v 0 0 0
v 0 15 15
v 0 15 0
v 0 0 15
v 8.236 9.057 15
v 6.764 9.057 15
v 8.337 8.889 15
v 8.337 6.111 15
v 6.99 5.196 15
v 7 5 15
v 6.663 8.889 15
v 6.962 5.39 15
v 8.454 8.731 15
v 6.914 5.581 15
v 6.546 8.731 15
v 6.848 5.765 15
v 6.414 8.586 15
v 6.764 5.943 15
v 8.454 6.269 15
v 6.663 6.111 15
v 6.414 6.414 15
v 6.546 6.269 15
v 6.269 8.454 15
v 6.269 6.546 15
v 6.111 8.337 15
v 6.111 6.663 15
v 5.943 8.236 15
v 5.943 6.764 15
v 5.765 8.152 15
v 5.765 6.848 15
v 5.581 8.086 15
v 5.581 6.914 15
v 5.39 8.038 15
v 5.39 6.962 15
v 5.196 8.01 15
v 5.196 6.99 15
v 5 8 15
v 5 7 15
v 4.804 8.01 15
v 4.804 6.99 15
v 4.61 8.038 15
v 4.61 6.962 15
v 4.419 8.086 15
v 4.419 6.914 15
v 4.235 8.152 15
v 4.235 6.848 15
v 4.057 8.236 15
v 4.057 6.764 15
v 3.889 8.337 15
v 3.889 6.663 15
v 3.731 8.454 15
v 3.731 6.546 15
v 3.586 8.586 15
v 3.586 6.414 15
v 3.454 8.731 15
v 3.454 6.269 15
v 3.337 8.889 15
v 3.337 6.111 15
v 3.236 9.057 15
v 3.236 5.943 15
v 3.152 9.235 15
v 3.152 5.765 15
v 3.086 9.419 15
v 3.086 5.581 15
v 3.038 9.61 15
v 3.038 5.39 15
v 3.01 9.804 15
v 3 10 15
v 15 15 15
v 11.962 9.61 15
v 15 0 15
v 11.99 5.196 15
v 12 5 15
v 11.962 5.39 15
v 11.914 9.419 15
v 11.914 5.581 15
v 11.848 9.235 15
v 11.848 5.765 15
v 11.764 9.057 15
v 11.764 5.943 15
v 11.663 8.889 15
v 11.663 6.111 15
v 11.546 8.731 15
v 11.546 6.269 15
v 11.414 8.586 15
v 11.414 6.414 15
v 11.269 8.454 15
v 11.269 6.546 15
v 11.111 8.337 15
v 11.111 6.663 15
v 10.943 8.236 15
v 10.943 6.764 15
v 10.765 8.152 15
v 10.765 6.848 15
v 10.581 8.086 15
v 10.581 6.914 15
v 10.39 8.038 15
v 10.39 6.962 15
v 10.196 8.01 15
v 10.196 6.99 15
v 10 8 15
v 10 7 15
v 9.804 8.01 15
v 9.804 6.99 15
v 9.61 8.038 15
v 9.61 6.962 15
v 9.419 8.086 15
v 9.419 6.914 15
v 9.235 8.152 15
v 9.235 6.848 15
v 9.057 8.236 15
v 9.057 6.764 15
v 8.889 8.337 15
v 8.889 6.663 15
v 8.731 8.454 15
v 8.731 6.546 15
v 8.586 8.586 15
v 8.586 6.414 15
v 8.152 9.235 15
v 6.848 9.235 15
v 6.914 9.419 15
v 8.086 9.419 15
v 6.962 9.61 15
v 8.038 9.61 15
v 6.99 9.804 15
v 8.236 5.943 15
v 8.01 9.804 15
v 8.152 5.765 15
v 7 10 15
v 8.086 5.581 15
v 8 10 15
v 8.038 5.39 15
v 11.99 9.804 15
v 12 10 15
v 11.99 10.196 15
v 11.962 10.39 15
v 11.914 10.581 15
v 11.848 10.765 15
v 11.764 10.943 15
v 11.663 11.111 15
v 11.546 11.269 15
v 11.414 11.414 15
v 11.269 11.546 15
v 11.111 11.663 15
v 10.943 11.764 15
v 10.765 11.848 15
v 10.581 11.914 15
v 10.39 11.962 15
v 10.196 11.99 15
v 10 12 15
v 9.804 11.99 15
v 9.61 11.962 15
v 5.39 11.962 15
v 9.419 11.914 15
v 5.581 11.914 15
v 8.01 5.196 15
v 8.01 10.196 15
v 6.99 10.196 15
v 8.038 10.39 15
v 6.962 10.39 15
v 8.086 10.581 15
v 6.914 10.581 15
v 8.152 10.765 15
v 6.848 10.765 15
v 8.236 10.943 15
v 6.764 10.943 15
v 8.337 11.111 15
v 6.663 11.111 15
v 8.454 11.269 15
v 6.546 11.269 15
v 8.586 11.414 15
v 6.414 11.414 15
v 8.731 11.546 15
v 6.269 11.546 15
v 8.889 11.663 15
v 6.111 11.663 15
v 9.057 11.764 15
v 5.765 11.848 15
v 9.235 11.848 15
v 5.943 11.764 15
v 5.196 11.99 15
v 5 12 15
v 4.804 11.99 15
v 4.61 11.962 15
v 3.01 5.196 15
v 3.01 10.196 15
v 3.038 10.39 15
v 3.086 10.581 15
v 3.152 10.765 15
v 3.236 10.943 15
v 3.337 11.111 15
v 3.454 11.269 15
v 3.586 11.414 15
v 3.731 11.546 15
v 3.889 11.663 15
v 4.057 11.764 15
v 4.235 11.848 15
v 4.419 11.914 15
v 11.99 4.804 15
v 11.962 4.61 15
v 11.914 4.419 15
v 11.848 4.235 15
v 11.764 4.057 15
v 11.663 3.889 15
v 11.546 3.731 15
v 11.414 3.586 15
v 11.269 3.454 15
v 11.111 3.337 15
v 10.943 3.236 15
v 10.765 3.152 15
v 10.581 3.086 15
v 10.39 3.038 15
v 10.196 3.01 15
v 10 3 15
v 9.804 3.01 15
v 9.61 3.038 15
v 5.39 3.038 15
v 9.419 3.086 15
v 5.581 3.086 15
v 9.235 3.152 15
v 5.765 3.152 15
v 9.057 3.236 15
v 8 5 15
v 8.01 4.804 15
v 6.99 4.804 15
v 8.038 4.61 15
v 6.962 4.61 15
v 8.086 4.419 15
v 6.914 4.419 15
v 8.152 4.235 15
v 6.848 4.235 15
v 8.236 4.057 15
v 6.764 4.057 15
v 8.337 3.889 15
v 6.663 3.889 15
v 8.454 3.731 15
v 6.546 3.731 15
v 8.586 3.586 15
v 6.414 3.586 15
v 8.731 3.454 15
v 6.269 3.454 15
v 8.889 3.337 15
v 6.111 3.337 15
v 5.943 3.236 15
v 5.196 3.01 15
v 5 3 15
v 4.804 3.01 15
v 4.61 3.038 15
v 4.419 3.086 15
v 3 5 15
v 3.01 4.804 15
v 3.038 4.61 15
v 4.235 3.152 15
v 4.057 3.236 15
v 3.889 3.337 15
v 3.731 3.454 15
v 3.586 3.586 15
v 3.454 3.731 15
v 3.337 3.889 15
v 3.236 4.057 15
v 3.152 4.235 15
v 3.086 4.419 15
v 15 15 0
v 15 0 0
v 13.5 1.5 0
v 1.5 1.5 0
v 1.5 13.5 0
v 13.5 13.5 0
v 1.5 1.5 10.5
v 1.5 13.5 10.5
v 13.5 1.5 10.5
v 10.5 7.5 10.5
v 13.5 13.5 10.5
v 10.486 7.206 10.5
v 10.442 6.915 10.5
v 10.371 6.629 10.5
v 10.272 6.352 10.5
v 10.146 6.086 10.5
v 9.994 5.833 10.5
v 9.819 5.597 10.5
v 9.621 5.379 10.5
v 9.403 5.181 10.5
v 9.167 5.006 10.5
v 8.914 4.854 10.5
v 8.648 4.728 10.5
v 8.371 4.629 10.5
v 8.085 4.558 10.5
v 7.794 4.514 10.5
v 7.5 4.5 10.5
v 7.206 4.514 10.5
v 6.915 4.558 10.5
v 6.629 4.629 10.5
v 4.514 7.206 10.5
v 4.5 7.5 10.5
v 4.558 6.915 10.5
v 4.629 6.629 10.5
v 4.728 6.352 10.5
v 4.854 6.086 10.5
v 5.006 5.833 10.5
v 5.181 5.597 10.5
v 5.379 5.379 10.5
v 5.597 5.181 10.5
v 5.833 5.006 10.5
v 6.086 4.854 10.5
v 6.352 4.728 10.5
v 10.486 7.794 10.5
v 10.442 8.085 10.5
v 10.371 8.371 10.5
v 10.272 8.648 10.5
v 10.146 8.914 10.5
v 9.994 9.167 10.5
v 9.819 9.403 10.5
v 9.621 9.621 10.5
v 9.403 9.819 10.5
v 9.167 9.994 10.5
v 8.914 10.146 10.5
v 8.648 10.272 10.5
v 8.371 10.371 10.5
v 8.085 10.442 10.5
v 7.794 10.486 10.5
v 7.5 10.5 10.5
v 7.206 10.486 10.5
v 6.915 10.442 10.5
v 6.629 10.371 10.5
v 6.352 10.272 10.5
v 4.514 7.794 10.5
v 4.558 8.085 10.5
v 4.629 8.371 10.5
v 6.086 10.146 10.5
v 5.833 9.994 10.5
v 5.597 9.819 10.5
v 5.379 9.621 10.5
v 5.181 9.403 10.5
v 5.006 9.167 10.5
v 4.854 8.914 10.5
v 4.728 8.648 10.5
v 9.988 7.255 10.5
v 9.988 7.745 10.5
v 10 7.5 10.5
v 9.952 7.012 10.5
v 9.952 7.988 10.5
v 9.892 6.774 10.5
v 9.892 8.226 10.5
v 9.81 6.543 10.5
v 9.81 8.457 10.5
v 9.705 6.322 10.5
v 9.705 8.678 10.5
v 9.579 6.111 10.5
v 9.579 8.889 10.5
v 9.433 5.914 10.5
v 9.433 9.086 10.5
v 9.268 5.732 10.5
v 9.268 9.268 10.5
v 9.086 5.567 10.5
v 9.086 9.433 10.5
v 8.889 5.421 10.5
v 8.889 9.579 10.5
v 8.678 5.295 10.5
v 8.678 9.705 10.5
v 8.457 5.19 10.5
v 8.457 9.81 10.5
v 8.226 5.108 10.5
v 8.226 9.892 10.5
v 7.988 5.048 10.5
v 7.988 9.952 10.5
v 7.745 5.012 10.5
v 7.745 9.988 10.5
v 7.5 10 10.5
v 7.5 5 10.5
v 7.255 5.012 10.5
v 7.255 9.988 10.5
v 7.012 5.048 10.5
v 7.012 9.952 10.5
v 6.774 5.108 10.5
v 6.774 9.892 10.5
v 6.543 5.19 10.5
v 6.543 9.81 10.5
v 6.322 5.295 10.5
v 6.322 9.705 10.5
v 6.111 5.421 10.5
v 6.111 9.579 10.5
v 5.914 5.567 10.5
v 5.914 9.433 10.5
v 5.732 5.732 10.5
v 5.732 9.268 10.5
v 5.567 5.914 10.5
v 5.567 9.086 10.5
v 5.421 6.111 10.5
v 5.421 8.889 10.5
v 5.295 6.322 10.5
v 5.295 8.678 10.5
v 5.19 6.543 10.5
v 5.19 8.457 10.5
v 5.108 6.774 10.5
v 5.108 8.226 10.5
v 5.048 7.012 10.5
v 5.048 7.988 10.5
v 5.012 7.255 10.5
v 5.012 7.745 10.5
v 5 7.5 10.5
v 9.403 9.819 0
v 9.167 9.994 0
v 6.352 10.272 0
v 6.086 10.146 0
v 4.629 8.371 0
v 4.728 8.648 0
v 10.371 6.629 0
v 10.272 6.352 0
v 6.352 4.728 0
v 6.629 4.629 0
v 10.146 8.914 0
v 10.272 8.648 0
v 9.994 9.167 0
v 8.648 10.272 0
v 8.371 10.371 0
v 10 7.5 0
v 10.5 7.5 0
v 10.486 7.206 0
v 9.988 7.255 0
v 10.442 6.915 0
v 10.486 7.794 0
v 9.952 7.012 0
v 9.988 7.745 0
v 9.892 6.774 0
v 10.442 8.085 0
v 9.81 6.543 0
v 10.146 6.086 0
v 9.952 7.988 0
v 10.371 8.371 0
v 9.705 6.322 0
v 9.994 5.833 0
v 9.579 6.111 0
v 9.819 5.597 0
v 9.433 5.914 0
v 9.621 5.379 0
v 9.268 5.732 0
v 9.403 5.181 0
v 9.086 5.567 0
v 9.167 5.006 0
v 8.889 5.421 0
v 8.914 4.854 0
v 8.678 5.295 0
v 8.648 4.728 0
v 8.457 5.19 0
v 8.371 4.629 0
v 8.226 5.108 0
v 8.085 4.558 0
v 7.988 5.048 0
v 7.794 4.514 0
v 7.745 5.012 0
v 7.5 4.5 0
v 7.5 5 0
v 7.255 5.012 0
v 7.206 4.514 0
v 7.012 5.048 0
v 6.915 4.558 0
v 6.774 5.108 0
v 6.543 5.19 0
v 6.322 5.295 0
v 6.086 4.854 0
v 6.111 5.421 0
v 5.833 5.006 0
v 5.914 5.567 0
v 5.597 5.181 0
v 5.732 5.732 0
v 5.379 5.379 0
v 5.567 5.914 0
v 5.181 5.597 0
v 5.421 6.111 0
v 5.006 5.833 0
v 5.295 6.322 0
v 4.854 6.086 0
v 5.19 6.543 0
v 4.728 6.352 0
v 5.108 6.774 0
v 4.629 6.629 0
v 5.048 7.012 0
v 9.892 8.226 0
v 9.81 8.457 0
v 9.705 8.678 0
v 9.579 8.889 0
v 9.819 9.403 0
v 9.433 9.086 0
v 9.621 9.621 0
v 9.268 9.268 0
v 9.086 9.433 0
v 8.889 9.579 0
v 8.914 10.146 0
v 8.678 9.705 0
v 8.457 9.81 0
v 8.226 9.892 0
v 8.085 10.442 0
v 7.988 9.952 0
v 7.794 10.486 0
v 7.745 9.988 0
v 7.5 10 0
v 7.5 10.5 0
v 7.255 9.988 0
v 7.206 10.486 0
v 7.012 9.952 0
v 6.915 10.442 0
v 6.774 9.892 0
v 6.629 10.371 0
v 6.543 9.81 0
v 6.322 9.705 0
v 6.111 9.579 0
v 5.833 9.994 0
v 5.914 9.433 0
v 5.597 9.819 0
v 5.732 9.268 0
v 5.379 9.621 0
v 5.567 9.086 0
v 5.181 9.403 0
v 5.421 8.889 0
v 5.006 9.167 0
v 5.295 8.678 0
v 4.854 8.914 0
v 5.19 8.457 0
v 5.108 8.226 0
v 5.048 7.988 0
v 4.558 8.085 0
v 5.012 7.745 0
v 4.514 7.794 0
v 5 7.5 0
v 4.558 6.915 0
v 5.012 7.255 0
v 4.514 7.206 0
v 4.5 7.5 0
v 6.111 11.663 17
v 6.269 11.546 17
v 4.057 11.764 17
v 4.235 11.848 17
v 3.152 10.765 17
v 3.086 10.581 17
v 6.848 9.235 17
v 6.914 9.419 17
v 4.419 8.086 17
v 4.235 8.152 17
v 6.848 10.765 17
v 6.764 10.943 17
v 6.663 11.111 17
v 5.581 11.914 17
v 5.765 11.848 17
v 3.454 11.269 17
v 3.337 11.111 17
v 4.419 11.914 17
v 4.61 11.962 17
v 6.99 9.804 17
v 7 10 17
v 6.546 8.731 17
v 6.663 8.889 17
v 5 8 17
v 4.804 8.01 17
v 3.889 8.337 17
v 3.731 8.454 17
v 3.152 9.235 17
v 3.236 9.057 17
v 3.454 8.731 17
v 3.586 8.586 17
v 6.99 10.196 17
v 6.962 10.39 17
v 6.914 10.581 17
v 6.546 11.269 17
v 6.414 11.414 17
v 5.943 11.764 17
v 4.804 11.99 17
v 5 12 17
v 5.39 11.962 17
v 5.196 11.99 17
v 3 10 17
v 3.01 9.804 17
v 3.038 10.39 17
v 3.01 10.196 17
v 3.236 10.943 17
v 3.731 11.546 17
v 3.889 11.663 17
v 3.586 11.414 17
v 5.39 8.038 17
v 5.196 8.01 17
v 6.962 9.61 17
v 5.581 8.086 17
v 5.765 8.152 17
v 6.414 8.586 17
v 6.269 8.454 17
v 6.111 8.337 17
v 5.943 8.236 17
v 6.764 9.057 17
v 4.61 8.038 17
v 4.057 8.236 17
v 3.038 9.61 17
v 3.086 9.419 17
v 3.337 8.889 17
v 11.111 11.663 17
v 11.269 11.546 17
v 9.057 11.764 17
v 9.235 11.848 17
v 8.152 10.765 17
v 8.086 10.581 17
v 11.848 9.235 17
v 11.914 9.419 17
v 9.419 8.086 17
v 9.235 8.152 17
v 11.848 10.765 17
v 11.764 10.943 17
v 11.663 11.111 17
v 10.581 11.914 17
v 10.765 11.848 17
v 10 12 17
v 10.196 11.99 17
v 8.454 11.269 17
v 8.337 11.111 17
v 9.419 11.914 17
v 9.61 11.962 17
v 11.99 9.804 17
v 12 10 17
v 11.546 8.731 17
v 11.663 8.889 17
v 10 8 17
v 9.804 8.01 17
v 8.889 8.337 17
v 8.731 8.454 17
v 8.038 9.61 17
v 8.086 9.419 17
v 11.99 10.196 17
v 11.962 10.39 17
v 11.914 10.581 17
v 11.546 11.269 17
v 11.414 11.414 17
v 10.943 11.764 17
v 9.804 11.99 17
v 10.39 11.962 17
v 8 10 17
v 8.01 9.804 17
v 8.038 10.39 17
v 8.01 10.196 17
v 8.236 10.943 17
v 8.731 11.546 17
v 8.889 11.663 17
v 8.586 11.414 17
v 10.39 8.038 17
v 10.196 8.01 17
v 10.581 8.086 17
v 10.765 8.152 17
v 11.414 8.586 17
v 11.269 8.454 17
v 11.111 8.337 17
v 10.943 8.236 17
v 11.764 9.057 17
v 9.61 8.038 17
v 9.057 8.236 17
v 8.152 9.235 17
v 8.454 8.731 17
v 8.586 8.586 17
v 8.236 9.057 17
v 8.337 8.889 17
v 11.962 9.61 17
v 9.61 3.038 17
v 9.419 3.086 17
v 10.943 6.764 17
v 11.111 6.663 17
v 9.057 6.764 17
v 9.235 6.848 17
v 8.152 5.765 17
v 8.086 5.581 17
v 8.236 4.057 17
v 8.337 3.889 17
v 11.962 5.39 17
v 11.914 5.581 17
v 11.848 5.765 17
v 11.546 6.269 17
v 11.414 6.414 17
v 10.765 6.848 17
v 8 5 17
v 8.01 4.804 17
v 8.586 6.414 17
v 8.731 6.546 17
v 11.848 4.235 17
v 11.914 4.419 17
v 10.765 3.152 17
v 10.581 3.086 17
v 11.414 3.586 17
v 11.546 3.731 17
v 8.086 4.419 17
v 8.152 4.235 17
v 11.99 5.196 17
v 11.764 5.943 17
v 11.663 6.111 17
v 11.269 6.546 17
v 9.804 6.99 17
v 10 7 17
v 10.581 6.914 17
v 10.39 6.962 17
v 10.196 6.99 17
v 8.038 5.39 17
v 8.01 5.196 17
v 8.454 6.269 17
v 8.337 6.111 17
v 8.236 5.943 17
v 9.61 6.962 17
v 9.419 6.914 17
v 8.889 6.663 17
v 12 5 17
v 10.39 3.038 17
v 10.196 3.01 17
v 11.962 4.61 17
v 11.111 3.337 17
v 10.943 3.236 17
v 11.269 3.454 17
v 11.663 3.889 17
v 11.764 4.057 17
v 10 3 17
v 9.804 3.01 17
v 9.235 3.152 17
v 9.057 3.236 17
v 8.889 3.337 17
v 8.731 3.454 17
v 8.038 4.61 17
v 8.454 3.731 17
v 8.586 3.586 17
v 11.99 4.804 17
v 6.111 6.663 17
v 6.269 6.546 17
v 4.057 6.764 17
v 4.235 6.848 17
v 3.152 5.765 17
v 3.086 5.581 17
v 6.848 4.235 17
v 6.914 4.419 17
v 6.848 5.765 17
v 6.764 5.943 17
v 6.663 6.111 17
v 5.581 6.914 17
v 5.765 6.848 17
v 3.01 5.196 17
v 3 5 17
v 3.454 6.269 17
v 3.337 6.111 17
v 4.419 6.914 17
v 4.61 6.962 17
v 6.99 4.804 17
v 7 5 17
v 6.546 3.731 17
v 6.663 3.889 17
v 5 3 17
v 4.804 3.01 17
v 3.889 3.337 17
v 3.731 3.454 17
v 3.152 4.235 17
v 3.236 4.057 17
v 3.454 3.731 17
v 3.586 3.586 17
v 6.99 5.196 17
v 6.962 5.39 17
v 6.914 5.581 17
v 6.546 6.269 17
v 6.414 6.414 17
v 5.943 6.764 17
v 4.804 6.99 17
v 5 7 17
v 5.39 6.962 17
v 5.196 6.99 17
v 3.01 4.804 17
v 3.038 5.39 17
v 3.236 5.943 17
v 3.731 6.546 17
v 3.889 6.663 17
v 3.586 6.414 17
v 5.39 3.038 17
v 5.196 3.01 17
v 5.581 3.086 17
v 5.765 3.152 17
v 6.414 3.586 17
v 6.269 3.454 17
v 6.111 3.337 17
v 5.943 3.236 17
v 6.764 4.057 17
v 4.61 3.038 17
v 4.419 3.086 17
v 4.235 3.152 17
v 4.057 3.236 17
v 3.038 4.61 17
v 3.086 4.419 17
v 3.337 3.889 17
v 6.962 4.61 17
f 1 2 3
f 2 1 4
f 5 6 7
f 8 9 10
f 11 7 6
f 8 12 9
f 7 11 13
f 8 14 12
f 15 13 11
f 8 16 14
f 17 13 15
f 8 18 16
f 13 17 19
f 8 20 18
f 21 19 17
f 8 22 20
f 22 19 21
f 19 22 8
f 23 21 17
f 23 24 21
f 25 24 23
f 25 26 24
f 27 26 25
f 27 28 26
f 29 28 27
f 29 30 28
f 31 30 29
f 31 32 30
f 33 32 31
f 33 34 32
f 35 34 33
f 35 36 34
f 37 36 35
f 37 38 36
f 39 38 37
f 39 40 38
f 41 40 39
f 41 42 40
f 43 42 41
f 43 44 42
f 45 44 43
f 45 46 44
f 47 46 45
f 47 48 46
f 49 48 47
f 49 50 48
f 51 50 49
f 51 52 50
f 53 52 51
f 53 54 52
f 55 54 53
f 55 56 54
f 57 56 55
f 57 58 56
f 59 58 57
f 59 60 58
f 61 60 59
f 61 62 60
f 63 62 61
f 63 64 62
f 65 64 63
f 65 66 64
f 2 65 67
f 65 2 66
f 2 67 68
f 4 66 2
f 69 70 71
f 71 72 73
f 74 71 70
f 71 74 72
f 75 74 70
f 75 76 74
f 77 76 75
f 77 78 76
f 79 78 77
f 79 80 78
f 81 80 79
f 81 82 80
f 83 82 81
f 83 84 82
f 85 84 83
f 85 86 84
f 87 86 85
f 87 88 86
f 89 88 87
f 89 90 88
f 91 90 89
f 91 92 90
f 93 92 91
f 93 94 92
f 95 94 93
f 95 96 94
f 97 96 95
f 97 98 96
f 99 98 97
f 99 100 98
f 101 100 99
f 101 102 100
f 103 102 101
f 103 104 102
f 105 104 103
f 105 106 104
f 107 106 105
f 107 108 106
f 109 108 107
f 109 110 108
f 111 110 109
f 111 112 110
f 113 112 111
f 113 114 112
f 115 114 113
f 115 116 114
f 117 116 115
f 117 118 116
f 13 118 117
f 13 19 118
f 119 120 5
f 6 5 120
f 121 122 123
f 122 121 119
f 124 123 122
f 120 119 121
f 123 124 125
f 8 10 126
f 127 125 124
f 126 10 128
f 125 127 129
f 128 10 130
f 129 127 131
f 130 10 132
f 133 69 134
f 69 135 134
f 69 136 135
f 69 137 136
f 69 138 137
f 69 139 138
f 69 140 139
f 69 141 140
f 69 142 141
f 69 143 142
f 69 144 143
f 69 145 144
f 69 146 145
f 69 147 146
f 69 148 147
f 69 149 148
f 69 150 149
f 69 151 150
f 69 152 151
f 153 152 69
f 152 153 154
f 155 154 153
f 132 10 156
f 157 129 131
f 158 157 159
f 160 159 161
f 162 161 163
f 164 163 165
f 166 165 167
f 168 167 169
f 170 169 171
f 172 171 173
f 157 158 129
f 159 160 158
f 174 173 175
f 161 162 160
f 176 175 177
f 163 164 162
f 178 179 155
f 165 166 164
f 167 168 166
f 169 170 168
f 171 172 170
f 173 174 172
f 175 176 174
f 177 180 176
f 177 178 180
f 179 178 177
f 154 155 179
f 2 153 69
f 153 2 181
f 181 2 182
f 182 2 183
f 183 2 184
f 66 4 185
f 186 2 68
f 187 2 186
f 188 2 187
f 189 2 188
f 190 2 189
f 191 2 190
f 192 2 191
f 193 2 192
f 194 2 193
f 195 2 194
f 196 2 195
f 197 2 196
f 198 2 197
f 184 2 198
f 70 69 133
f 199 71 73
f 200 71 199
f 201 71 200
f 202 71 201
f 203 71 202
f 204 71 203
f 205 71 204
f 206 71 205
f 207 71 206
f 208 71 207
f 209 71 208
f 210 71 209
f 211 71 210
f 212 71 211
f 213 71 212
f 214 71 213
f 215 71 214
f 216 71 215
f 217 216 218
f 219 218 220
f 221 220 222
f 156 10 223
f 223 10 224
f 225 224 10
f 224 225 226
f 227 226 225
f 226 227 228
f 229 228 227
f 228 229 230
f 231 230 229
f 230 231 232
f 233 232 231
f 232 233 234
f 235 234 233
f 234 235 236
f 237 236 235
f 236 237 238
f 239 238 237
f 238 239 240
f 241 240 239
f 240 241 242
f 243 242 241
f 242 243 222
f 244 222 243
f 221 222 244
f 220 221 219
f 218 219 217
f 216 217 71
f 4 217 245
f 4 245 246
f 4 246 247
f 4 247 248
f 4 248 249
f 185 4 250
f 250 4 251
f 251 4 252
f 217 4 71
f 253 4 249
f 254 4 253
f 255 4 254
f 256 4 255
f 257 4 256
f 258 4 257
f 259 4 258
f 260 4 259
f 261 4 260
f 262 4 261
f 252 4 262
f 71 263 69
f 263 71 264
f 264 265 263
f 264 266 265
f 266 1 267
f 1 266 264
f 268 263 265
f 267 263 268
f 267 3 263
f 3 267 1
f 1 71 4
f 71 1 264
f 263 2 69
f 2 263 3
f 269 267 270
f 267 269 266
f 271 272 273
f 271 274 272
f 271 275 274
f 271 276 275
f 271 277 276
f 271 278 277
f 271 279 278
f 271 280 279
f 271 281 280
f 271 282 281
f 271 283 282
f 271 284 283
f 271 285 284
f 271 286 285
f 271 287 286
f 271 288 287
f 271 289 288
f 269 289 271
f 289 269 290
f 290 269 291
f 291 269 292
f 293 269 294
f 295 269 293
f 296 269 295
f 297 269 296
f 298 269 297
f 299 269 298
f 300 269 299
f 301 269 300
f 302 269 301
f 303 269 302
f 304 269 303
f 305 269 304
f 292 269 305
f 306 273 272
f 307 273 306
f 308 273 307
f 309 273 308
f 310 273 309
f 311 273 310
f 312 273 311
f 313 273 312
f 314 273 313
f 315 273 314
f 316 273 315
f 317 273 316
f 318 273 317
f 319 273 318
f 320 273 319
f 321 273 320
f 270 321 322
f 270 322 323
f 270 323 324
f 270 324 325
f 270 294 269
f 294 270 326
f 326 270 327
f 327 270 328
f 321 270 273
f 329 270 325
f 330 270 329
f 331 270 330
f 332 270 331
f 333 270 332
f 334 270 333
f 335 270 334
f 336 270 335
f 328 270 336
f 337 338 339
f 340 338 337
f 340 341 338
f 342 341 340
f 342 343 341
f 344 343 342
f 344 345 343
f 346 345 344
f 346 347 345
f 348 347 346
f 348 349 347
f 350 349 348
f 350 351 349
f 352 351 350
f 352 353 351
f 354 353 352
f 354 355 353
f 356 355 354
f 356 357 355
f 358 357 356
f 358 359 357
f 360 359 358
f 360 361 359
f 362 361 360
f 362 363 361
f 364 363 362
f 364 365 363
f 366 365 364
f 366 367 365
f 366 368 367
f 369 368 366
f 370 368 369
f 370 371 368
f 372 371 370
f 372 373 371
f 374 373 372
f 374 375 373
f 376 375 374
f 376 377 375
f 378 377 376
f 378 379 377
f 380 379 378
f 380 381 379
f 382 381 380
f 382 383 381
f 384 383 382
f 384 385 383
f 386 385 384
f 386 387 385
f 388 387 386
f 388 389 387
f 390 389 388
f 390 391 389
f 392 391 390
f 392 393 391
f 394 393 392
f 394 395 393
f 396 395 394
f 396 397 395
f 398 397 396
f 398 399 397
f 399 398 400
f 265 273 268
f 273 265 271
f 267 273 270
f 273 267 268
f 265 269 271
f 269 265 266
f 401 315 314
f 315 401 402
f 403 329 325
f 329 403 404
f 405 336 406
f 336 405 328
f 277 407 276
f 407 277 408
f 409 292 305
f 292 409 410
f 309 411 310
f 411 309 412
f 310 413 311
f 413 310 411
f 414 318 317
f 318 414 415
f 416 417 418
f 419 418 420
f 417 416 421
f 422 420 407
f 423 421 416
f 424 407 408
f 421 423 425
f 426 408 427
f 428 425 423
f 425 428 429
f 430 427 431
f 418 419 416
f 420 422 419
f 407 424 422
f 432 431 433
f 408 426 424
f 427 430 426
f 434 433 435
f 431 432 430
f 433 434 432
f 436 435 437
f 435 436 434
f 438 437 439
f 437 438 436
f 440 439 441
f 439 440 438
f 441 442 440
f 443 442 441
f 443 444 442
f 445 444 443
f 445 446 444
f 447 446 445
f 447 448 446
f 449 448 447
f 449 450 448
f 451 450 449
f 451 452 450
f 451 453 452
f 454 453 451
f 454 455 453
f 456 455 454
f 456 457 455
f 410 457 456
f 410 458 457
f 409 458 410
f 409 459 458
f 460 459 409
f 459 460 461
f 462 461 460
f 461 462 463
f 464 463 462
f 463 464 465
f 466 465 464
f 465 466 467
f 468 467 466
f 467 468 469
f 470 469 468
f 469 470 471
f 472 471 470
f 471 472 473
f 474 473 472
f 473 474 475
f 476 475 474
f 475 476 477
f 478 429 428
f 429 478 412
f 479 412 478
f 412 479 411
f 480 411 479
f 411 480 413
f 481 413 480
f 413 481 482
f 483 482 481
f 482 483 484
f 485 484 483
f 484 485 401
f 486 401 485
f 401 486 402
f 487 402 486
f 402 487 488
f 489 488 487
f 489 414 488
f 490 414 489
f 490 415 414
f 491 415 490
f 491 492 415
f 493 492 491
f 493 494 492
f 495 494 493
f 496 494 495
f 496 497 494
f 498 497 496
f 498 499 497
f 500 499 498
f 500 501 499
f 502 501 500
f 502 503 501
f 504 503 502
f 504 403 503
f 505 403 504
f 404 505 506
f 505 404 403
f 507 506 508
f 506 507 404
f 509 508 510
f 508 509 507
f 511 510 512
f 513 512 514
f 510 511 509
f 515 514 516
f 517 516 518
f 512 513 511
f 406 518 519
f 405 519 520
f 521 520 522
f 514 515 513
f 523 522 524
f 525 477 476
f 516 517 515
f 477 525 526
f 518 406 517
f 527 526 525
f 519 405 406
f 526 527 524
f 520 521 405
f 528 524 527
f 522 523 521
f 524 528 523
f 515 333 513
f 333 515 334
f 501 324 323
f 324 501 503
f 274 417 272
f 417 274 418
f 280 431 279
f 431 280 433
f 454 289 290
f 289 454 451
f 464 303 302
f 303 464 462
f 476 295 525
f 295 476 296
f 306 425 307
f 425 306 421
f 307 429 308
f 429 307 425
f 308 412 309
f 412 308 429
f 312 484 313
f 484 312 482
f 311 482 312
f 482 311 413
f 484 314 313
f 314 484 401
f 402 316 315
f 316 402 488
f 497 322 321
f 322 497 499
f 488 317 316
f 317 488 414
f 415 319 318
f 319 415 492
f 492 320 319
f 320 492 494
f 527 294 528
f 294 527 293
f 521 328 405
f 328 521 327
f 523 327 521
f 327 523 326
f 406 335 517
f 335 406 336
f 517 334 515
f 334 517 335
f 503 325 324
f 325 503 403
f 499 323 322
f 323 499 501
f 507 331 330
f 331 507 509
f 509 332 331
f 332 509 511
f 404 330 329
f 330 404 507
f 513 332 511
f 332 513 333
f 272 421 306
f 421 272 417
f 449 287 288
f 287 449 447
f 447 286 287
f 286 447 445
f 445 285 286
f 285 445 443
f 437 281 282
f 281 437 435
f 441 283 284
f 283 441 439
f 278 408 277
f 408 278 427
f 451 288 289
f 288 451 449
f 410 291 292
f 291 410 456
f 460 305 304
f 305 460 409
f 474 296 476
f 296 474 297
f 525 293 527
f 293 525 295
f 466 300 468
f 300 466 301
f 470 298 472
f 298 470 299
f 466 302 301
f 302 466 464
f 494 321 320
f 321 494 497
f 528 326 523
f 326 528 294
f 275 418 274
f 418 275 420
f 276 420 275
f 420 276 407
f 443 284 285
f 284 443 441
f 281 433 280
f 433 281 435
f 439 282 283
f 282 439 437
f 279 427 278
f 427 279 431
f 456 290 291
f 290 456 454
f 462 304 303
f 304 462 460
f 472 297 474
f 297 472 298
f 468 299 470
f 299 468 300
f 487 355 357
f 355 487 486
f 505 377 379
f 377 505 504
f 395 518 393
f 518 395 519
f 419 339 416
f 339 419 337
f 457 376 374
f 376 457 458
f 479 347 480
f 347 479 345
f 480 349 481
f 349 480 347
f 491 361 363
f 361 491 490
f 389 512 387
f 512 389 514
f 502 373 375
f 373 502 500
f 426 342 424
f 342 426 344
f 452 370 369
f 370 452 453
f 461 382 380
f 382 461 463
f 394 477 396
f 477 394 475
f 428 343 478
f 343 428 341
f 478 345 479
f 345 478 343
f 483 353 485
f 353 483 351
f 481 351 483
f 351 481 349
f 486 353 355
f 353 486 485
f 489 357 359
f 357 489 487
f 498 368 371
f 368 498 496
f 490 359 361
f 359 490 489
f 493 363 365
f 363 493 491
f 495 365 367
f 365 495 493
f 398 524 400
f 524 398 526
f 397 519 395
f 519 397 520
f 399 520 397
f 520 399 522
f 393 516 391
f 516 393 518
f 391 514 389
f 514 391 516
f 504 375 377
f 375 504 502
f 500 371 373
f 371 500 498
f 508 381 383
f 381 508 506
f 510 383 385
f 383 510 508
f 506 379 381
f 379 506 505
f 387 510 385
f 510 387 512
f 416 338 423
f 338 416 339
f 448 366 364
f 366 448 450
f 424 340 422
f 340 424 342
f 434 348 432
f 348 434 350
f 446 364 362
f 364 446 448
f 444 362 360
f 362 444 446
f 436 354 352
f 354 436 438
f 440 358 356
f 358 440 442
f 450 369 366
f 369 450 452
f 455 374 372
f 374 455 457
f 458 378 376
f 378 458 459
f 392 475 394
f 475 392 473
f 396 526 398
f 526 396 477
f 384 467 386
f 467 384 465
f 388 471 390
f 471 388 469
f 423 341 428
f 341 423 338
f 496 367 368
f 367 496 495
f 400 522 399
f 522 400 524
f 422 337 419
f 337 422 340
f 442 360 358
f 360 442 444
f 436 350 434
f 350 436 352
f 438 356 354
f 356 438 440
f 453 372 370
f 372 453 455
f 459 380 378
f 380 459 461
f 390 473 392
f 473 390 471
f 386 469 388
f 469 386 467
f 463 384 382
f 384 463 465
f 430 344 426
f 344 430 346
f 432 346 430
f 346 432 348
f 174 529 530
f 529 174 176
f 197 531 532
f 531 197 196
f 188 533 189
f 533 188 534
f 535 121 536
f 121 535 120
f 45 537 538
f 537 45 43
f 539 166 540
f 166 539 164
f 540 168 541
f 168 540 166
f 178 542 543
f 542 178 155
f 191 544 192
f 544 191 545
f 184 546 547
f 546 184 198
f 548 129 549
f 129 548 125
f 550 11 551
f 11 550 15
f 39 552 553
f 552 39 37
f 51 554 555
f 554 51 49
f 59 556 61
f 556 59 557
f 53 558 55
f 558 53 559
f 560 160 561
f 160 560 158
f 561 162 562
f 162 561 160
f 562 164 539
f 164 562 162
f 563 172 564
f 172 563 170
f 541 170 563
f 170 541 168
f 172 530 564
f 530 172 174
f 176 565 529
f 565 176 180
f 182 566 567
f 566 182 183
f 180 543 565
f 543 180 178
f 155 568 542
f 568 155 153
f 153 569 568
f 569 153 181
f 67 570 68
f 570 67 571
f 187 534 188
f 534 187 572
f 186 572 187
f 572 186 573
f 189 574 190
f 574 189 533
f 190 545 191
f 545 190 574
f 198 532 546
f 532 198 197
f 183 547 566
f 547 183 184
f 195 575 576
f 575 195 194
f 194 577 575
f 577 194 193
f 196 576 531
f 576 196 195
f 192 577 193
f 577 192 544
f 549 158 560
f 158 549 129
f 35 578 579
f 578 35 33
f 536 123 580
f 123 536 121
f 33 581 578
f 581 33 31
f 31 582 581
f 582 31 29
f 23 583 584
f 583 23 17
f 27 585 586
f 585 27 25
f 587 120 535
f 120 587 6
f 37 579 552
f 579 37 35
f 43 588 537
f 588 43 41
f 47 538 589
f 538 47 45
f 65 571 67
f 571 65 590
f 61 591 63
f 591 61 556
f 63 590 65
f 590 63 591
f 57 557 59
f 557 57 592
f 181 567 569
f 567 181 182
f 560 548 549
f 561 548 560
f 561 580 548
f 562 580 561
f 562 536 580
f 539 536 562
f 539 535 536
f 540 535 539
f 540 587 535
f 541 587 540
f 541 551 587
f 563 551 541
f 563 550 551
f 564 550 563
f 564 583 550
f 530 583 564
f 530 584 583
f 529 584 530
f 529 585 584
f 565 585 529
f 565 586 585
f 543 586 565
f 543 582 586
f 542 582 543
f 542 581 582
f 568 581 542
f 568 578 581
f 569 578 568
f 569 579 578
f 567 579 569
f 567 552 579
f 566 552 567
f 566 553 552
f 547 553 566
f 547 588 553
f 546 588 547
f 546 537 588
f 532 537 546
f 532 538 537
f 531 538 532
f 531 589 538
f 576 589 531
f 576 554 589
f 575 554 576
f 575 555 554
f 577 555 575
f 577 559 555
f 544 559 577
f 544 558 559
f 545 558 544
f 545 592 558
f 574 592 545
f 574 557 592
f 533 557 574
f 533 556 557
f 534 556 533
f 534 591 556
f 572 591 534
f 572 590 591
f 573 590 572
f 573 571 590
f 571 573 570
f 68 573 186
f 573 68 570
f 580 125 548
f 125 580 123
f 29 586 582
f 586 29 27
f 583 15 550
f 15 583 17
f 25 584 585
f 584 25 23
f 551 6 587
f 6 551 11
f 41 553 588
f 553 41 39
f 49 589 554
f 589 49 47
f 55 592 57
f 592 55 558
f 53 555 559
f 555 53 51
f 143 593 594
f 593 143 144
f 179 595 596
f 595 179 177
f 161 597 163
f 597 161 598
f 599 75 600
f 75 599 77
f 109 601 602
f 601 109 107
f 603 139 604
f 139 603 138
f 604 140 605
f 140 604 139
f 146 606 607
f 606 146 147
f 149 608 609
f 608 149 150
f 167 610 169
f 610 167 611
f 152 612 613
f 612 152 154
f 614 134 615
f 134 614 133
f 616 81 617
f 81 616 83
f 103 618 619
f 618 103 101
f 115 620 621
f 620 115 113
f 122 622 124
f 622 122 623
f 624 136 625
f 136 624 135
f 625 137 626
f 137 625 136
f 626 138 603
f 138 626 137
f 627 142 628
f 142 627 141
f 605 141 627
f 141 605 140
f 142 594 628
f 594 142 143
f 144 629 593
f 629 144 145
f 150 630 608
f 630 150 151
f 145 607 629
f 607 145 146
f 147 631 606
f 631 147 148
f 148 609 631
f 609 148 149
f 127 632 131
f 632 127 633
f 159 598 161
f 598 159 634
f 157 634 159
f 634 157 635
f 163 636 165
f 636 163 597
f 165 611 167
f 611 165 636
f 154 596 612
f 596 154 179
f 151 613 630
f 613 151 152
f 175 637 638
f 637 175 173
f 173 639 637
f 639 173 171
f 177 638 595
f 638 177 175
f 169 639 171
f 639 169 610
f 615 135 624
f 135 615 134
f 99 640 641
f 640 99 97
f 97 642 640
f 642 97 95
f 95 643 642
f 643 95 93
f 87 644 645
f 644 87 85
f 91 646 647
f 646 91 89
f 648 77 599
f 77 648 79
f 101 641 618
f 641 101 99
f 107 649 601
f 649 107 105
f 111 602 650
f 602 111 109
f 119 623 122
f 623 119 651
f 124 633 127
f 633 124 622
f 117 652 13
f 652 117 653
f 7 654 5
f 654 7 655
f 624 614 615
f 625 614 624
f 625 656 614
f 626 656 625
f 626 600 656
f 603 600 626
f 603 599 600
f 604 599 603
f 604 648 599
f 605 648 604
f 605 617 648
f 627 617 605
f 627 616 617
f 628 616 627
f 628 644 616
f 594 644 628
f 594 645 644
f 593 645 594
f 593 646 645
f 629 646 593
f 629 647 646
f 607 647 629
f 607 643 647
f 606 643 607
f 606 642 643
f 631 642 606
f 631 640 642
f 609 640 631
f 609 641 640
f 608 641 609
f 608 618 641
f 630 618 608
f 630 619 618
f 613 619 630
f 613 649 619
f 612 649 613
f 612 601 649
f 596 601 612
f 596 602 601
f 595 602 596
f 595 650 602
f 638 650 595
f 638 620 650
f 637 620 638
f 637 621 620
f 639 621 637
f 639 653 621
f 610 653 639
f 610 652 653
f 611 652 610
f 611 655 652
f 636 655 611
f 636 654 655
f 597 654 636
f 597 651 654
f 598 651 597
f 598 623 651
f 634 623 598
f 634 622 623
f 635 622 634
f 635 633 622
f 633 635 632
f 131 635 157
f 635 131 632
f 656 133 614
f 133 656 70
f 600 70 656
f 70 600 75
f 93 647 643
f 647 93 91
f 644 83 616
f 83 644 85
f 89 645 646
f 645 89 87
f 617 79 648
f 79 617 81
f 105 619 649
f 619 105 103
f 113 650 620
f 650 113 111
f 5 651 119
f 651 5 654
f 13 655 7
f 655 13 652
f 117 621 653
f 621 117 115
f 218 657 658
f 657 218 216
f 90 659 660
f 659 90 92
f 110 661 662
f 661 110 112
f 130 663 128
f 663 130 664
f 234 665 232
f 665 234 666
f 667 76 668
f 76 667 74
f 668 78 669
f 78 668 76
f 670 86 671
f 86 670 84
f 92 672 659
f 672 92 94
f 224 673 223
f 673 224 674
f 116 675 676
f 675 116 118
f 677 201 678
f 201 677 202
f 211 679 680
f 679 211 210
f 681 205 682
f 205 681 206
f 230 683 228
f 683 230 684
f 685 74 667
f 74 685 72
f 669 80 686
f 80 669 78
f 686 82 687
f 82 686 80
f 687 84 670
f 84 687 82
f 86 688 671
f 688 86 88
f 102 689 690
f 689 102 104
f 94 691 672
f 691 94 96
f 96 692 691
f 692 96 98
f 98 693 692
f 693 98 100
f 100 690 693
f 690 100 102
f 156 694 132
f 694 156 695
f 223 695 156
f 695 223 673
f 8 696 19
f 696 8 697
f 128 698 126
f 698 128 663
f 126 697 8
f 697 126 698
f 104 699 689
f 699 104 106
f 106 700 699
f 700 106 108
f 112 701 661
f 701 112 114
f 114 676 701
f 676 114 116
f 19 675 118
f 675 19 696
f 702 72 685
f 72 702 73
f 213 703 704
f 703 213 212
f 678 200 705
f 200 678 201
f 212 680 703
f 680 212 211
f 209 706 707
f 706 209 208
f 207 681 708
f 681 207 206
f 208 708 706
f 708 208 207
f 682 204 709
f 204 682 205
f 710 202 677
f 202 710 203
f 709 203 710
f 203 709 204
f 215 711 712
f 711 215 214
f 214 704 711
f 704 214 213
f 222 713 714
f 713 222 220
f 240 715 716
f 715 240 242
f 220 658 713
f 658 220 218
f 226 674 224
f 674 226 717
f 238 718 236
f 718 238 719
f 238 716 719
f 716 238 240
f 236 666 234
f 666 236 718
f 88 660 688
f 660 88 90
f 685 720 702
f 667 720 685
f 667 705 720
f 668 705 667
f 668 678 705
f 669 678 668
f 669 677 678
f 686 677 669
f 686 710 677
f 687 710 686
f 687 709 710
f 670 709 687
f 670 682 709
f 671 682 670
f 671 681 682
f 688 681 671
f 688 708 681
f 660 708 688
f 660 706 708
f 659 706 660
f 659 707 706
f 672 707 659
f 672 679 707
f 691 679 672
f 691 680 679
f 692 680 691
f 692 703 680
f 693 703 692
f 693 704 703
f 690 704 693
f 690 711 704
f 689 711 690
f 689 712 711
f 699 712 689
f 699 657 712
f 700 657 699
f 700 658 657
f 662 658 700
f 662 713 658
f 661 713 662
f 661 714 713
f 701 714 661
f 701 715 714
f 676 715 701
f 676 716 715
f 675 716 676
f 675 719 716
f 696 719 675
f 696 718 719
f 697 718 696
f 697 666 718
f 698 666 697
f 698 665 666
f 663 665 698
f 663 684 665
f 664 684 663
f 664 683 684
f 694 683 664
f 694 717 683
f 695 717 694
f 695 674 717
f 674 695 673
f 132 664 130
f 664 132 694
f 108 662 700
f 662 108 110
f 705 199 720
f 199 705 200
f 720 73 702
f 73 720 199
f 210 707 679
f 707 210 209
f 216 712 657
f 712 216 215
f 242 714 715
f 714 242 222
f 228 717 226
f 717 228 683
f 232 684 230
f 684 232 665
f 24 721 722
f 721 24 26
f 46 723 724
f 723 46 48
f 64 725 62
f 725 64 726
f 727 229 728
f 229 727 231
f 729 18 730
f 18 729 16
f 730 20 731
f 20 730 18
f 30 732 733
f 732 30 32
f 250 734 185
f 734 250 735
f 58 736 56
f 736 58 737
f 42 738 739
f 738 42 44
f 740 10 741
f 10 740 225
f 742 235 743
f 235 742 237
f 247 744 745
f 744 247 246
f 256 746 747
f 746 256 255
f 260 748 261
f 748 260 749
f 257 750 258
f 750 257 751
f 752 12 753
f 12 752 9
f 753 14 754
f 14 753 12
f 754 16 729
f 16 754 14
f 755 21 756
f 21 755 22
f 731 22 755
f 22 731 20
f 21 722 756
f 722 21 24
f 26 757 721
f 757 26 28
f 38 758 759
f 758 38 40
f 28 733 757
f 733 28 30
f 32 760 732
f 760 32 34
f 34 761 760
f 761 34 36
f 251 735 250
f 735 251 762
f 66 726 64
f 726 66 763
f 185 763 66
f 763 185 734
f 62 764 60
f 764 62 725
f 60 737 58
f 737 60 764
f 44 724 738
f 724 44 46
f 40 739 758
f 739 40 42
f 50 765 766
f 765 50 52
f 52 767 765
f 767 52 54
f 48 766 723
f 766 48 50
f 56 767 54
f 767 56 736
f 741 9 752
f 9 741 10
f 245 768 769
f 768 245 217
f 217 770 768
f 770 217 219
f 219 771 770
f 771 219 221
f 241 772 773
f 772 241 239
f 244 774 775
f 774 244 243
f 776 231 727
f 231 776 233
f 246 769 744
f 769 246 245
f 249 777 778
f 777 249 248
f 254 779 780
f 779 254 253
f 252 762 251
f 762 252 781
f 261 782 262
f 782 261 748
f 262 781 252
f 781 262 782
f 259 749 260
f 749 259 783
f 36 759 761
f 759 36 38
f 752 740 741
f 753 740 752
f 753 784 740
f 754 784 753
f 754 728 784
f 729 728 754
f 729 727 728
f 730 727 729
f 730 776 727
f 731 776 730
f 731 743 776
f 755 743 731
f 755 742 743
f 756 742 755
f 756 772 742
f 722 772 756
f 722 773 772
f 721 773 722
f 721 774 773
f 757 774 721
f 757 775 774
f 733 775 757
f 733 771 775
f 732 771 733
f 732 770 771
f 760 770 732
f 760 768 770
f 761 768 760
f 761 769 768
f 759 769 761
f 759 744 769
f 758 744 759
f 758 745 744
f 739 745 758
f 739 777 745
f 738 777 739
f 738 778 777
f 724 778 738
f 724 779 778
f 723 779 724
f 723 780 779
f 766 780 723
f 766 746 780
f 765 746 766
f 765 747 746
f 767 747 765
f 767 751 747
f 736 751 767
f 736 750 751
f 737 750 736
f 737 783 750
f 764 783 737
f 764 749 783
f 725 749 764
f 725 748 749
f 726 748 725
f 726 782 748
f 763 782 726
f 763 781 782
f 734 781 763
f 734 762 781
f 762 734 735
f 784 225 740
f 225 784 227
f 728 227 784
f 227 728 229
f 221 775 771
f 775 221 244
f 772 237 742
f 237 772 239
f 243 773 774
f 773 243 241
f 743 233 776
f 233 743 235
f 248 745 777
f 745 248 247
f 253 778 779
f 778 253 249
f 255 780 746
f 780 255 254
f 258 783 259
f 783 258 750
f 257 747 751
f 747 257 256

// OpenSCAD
//This code creates a basic lego block with 4 connector dots

//Lego block body
difference() {
    color("red") cube(15);
    translate([1.5, 1.5, -1.5]) color("green") cube(12);
}

//Inner cylinder in block
difference() {
    translate([7.5, 7.5, 0]) cylinder(13, 3, 3, $fn=64);
    translate([7.5, 7.5, -1]) cylinder(13, 2.5, 2.5, $fn=64);
}

//Top Connector dots
translate([5, 10, 15]) cylinder(2, 2, 2, $fn=64);
translate([10, 10, 15]) cylinder(2, 2, 2, $fn=64);
translate([10, 5, 15]) cylinder(2, 2, 2, $fn=64);
translate([5, 5, 15]) cylinder(2, 2, 2, $fn=64);
